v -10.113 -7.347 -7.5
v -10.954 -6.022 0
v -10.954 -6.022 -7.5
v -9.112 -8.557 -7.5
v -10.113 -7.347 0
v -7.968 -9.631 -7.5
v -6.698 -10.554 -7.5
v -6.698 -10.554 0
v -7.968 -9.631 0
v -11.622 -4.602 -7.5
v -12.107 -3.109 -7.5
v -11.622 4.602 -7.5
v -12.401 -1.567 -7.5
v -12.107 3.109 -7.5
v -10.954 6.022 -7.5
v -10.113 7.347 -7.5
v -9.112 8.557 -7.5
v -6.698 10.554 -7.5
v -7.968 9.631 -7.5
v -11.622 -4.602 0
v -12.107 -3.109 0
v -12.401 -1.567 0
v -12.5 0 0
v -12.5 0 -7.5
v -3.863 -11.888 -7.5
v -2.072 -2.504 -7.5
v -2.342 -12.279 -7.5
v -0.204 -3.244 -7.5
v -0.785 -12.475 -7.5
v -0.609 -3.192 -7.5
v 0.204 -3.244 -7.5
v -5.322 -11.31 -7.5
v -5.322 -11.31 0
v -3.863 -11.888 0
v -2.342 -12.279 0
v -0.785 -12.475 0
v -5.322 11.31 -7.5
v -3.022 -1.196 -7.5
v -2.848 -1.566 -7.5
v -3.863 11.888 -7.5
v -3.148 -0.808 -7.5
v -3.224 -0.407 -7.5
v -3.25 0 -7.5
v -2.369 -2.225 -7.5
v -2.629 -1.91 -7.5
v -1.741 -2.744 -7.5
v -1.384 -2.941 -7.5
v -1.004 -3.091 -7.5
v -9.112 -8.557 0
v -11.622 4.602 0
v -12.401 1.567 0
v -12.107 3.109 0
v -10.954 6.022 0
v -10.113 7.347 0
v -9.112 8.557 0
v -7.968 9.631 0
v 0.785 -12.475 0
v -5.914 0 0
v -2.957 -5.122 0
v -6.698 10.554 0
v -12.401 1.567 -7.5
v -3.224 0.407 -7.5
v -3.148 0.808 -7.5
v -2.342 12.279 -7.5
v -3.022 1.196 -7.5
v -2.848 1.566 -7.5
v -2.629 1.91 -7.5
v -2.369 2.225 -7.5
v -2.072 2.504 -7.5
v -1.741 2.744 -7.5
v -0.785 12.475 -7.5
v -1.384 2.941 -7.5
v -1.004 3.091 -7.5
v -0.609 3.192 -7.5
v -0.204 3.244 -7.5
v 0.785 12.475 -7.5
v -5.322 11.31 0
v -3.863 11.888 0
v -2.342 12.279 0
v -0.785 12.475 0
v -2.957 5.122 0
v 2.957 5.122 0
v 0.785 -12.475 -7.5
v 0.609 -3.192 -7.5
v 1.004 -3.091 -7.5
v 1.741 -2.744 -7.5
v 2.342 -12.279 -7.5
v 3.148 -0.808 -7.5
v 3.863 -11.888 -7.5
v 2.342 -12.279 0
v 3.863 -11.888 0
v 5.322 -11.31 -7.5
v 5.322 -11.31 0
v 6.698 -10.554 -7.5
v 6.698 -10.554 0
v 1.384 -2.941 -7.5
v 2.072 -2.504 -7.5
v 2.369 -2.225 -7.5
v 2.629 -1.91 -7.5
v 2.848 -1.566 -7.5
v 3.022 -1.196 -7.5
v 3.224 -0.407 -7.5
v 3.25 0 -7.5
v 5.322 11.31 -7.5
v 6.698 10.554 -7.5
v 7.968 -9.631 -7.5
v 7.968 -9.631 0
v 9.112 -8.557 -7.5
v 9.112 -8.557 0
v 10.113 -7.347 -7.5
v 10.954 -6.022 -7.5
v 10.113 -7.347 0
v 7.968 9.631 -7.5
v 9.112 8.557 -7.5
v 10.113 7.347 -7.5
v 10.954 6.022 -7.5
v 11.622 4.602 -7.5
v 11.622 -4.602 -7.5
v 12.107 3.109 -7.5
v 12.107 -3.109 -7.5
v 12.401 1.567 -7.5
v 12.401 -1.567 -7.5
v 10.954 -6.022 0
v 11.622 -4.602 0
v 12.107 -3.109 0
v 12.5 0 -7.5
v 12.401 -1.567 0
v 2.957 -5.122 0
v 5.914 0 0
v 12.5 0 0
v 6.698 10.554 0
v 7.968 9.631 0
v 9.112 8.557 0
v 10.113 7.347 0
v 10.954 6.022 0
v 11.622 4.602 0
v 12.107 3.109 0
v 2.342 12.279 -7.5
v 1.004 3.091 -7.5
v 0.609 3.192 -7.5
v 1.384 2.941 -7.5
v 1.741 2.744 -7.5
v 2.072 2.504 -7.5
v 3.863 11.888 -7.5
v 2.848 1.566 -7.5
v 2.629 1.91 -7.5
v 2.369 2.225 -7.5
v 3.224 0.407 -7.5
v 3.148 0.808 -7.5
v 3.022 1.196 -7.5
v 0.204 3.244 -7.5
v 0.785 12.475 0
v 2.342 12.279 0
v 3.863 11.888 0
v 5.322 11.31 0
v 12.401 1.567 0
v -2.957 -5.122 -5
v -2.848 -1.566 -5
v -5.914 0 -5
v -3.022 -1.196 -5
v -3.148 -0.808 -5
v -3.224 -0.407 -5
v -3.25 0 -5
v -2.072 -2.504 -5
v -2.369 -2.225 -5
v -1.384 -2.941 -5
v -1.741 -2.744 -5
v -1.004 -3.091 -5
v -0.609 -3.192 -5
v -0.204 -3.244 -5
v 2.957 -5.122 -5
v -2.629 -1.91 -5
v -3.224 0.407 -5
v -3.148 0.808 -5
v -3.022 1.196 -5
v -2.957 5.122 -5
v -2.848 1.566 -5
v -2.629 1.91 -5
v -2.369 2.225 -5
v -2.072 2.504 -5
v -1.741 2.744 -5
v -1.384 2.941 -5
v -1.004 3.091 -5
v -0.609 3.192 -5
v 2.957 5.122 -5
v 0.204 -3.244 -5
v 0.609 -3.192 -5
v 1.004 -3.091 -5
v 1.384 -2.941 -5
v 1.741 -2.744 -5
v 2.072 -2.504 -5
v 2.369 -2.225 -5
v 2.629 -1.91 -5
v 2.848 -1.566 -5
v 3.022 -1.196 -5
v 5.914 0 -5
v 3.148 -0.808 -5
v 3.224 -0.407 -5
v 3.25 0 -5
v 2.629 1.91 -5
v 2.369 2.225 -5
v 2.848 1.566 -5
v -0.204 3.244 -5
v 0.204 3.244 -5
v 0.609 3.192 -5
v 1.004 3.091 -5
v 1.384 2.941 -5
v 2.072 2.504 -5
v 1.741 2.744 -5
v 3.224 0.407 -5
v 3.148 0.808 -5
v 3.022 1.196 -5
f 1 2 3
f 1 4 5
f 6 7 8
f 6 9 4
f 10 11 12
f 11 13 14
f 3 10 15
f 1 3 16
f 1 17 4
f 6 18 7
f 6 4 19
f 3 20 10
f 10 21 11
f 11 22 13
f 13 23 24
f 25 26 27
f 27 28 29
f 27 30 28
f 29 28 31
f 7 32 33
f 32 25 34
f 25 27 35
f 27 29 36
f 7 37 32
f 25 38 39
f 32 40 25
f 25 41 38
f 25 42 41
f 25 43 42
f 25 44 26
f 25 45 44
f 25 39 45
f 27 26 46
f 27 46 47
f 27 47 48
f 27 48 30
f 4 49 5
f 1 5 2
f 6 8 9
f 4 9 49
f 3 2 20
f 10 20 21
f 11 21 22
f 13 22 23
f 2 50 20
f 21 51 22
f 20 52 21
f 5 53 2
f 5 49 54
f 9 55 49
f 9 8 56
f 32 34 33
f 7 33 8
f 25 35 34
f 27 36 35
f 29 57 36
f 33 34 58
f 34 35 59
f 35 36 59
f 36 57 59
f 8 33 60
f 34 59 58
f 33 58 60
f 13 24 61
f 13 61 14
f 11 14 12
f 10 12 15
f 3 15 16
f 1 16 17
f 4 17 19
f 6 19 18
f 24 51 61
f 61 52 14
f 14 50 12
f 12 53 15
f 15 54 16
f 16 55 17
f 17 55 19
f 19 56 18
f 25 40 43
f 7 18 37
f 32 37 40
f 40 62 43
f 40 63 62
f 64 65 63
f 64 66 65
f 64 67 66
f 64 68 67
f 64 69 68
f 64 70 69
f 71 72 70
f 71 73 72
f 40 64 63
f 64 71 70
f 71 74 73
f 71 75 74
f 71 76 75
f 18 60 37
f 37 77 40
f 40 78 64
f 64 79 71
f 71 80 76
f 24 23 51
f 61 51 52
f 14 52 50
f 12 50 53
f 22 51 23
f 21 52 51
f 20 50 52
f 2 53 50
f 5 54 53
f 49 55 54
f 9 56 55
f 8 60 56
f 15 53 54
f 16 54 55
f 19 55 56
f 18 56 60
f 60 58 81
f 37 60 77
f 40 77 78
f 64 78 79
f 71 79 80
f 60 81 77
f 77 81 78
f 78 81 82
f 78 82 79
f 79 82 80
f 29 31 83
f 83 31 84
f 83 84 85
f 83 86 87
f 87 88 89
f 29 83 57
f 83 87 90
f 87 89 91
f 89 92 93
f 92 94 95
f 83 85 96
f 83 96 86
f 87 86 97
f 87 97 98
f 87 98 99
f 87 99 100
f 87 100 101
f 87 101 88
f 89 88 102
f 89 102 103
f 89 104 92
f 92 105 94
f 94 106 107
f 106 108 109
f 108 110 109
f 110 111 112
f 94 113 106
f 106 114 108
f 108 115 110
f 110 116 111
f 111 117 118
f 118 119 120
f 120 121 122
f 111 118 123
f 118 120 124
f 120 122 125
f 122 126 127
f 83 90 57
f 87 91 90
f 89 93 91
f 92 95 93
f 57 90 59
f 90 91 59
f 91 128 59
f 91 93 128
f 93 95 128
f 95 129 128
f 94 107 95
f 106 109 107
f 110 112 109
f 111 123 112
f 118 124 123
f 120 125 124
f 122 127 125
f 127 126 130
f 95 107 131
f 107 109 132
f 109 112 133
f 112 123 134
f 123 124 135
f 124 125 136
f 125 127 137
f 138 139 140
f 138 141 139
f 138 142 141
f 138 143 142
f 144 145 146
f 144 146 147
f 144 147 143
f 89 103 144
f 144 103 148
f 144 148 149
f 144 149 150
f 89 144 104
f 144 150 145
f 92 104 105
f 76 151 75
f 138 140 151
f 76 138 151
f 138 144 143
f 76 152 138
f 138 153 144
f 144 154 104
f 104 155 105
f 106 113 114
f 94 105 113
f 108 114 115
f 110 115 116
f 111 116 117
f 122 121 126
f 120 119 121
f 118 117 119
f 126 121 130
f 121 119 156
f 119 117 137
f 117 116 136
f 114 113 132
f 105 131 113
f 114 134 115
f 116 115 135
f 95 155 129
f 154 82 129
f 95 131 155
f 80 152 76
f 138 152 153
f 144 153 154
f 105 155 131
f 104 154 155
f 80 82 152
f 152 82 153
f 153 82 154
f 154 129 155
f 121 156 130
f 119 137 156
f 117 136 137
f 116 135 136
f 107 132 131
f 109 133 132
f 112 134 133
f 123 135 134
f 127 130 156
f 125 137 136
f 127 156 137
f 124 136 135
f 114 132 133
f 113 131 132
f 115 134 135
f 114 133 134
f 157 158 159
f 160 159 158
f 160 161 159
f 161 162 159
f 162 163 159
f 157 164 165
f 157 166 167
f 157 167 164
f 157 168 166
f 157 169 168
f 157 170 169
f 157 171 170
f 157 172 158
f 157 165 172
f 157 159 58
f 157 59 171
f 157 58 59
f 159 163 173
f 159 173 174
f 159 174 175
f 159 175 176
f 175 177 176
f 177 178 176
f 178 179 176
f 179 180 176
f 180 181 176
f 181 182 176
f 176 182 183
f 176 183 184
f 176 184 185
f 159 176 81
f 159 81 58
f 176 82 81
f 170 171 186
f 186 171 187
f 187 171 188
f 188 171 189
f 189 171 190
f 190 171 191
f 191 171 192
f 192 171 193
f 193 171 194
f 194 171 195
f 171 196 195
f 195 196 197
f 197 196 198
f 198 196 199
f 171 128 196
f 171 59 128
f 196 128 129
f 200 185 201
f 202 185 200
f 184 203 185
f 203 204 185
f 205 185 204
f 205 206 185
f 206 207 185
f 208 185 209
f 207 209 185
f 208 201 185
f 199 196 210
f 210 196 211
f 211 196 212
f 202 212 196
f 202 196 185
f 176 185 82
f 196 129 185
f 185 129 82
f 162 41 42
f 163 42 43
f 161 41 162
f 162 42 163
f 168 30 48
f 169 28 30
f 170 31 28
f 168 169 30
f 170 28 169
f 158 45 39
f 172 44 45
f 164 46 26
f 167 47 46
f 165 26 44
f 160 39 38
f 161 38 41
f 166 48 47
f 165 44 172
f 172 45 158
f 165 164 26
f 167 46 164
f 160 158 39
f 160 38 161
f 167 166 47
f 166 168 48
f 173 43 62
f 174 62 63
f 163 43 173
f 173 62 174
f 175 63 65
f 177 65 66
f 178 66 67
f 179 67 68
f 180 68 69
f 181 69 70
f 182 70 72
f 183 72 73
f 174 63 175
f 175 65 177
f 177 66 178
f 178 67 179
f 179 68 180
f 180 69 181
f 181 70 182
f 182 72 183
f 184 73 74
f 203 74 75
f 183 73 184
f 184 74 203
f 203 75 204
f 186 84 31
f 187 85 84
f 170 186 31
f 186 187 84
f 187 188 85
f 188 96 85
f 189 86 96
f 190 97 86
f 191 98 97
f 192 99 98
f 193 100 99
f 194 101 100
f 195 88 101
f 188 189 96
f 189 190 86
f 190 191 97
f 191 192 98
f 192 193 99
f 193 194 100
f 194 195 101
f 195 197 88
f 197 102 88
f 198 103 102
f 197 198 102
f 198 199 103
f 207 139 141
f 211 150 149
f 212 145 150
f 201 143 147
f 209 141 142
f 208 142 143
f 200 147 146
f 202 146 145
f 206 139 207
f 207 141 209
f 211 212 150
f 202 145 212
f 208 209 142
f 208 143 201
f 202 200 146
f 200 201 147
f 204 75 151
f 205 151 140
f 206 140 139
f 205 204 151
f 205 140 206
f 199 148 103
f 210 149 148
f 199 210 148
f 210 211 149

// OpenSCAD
$fn = 50;

difference() {
	union() {
		translate(v = [0, 0, -7.5]) {
			cylinder(h = 7.5, r = 12.5);
		}
		#translate(v = [0, 0, -9.0]) {
			cylinder(h = 9, r = 2.875);
		}
	}
	union() {
		translate(v = [0, 0, 0]) {
			rotate(a = [0, 0, 0]) {
				difference() {
					union() {
						translate(v = [0, 0, -5]) {
							linear_extrude(height = 5) {
								polygon(points = [[5.914249999999999, 0.0], [2.957125, 5.1218907443321156], [-2.9571249999999982, 5.1218907443321156], [-5.914249999999999, 7.242867331857232e-16], [-2.9571250000000022, -5.121890744332115], [2.9571249999999956, -5.121890744332118]]);
							}
						}
					}
					union();
				}
			}
		}
		#translate(v = [0, 0, -100.0]) {
			cylinder(h = 200, r = 3.25);
		}
	}
}
